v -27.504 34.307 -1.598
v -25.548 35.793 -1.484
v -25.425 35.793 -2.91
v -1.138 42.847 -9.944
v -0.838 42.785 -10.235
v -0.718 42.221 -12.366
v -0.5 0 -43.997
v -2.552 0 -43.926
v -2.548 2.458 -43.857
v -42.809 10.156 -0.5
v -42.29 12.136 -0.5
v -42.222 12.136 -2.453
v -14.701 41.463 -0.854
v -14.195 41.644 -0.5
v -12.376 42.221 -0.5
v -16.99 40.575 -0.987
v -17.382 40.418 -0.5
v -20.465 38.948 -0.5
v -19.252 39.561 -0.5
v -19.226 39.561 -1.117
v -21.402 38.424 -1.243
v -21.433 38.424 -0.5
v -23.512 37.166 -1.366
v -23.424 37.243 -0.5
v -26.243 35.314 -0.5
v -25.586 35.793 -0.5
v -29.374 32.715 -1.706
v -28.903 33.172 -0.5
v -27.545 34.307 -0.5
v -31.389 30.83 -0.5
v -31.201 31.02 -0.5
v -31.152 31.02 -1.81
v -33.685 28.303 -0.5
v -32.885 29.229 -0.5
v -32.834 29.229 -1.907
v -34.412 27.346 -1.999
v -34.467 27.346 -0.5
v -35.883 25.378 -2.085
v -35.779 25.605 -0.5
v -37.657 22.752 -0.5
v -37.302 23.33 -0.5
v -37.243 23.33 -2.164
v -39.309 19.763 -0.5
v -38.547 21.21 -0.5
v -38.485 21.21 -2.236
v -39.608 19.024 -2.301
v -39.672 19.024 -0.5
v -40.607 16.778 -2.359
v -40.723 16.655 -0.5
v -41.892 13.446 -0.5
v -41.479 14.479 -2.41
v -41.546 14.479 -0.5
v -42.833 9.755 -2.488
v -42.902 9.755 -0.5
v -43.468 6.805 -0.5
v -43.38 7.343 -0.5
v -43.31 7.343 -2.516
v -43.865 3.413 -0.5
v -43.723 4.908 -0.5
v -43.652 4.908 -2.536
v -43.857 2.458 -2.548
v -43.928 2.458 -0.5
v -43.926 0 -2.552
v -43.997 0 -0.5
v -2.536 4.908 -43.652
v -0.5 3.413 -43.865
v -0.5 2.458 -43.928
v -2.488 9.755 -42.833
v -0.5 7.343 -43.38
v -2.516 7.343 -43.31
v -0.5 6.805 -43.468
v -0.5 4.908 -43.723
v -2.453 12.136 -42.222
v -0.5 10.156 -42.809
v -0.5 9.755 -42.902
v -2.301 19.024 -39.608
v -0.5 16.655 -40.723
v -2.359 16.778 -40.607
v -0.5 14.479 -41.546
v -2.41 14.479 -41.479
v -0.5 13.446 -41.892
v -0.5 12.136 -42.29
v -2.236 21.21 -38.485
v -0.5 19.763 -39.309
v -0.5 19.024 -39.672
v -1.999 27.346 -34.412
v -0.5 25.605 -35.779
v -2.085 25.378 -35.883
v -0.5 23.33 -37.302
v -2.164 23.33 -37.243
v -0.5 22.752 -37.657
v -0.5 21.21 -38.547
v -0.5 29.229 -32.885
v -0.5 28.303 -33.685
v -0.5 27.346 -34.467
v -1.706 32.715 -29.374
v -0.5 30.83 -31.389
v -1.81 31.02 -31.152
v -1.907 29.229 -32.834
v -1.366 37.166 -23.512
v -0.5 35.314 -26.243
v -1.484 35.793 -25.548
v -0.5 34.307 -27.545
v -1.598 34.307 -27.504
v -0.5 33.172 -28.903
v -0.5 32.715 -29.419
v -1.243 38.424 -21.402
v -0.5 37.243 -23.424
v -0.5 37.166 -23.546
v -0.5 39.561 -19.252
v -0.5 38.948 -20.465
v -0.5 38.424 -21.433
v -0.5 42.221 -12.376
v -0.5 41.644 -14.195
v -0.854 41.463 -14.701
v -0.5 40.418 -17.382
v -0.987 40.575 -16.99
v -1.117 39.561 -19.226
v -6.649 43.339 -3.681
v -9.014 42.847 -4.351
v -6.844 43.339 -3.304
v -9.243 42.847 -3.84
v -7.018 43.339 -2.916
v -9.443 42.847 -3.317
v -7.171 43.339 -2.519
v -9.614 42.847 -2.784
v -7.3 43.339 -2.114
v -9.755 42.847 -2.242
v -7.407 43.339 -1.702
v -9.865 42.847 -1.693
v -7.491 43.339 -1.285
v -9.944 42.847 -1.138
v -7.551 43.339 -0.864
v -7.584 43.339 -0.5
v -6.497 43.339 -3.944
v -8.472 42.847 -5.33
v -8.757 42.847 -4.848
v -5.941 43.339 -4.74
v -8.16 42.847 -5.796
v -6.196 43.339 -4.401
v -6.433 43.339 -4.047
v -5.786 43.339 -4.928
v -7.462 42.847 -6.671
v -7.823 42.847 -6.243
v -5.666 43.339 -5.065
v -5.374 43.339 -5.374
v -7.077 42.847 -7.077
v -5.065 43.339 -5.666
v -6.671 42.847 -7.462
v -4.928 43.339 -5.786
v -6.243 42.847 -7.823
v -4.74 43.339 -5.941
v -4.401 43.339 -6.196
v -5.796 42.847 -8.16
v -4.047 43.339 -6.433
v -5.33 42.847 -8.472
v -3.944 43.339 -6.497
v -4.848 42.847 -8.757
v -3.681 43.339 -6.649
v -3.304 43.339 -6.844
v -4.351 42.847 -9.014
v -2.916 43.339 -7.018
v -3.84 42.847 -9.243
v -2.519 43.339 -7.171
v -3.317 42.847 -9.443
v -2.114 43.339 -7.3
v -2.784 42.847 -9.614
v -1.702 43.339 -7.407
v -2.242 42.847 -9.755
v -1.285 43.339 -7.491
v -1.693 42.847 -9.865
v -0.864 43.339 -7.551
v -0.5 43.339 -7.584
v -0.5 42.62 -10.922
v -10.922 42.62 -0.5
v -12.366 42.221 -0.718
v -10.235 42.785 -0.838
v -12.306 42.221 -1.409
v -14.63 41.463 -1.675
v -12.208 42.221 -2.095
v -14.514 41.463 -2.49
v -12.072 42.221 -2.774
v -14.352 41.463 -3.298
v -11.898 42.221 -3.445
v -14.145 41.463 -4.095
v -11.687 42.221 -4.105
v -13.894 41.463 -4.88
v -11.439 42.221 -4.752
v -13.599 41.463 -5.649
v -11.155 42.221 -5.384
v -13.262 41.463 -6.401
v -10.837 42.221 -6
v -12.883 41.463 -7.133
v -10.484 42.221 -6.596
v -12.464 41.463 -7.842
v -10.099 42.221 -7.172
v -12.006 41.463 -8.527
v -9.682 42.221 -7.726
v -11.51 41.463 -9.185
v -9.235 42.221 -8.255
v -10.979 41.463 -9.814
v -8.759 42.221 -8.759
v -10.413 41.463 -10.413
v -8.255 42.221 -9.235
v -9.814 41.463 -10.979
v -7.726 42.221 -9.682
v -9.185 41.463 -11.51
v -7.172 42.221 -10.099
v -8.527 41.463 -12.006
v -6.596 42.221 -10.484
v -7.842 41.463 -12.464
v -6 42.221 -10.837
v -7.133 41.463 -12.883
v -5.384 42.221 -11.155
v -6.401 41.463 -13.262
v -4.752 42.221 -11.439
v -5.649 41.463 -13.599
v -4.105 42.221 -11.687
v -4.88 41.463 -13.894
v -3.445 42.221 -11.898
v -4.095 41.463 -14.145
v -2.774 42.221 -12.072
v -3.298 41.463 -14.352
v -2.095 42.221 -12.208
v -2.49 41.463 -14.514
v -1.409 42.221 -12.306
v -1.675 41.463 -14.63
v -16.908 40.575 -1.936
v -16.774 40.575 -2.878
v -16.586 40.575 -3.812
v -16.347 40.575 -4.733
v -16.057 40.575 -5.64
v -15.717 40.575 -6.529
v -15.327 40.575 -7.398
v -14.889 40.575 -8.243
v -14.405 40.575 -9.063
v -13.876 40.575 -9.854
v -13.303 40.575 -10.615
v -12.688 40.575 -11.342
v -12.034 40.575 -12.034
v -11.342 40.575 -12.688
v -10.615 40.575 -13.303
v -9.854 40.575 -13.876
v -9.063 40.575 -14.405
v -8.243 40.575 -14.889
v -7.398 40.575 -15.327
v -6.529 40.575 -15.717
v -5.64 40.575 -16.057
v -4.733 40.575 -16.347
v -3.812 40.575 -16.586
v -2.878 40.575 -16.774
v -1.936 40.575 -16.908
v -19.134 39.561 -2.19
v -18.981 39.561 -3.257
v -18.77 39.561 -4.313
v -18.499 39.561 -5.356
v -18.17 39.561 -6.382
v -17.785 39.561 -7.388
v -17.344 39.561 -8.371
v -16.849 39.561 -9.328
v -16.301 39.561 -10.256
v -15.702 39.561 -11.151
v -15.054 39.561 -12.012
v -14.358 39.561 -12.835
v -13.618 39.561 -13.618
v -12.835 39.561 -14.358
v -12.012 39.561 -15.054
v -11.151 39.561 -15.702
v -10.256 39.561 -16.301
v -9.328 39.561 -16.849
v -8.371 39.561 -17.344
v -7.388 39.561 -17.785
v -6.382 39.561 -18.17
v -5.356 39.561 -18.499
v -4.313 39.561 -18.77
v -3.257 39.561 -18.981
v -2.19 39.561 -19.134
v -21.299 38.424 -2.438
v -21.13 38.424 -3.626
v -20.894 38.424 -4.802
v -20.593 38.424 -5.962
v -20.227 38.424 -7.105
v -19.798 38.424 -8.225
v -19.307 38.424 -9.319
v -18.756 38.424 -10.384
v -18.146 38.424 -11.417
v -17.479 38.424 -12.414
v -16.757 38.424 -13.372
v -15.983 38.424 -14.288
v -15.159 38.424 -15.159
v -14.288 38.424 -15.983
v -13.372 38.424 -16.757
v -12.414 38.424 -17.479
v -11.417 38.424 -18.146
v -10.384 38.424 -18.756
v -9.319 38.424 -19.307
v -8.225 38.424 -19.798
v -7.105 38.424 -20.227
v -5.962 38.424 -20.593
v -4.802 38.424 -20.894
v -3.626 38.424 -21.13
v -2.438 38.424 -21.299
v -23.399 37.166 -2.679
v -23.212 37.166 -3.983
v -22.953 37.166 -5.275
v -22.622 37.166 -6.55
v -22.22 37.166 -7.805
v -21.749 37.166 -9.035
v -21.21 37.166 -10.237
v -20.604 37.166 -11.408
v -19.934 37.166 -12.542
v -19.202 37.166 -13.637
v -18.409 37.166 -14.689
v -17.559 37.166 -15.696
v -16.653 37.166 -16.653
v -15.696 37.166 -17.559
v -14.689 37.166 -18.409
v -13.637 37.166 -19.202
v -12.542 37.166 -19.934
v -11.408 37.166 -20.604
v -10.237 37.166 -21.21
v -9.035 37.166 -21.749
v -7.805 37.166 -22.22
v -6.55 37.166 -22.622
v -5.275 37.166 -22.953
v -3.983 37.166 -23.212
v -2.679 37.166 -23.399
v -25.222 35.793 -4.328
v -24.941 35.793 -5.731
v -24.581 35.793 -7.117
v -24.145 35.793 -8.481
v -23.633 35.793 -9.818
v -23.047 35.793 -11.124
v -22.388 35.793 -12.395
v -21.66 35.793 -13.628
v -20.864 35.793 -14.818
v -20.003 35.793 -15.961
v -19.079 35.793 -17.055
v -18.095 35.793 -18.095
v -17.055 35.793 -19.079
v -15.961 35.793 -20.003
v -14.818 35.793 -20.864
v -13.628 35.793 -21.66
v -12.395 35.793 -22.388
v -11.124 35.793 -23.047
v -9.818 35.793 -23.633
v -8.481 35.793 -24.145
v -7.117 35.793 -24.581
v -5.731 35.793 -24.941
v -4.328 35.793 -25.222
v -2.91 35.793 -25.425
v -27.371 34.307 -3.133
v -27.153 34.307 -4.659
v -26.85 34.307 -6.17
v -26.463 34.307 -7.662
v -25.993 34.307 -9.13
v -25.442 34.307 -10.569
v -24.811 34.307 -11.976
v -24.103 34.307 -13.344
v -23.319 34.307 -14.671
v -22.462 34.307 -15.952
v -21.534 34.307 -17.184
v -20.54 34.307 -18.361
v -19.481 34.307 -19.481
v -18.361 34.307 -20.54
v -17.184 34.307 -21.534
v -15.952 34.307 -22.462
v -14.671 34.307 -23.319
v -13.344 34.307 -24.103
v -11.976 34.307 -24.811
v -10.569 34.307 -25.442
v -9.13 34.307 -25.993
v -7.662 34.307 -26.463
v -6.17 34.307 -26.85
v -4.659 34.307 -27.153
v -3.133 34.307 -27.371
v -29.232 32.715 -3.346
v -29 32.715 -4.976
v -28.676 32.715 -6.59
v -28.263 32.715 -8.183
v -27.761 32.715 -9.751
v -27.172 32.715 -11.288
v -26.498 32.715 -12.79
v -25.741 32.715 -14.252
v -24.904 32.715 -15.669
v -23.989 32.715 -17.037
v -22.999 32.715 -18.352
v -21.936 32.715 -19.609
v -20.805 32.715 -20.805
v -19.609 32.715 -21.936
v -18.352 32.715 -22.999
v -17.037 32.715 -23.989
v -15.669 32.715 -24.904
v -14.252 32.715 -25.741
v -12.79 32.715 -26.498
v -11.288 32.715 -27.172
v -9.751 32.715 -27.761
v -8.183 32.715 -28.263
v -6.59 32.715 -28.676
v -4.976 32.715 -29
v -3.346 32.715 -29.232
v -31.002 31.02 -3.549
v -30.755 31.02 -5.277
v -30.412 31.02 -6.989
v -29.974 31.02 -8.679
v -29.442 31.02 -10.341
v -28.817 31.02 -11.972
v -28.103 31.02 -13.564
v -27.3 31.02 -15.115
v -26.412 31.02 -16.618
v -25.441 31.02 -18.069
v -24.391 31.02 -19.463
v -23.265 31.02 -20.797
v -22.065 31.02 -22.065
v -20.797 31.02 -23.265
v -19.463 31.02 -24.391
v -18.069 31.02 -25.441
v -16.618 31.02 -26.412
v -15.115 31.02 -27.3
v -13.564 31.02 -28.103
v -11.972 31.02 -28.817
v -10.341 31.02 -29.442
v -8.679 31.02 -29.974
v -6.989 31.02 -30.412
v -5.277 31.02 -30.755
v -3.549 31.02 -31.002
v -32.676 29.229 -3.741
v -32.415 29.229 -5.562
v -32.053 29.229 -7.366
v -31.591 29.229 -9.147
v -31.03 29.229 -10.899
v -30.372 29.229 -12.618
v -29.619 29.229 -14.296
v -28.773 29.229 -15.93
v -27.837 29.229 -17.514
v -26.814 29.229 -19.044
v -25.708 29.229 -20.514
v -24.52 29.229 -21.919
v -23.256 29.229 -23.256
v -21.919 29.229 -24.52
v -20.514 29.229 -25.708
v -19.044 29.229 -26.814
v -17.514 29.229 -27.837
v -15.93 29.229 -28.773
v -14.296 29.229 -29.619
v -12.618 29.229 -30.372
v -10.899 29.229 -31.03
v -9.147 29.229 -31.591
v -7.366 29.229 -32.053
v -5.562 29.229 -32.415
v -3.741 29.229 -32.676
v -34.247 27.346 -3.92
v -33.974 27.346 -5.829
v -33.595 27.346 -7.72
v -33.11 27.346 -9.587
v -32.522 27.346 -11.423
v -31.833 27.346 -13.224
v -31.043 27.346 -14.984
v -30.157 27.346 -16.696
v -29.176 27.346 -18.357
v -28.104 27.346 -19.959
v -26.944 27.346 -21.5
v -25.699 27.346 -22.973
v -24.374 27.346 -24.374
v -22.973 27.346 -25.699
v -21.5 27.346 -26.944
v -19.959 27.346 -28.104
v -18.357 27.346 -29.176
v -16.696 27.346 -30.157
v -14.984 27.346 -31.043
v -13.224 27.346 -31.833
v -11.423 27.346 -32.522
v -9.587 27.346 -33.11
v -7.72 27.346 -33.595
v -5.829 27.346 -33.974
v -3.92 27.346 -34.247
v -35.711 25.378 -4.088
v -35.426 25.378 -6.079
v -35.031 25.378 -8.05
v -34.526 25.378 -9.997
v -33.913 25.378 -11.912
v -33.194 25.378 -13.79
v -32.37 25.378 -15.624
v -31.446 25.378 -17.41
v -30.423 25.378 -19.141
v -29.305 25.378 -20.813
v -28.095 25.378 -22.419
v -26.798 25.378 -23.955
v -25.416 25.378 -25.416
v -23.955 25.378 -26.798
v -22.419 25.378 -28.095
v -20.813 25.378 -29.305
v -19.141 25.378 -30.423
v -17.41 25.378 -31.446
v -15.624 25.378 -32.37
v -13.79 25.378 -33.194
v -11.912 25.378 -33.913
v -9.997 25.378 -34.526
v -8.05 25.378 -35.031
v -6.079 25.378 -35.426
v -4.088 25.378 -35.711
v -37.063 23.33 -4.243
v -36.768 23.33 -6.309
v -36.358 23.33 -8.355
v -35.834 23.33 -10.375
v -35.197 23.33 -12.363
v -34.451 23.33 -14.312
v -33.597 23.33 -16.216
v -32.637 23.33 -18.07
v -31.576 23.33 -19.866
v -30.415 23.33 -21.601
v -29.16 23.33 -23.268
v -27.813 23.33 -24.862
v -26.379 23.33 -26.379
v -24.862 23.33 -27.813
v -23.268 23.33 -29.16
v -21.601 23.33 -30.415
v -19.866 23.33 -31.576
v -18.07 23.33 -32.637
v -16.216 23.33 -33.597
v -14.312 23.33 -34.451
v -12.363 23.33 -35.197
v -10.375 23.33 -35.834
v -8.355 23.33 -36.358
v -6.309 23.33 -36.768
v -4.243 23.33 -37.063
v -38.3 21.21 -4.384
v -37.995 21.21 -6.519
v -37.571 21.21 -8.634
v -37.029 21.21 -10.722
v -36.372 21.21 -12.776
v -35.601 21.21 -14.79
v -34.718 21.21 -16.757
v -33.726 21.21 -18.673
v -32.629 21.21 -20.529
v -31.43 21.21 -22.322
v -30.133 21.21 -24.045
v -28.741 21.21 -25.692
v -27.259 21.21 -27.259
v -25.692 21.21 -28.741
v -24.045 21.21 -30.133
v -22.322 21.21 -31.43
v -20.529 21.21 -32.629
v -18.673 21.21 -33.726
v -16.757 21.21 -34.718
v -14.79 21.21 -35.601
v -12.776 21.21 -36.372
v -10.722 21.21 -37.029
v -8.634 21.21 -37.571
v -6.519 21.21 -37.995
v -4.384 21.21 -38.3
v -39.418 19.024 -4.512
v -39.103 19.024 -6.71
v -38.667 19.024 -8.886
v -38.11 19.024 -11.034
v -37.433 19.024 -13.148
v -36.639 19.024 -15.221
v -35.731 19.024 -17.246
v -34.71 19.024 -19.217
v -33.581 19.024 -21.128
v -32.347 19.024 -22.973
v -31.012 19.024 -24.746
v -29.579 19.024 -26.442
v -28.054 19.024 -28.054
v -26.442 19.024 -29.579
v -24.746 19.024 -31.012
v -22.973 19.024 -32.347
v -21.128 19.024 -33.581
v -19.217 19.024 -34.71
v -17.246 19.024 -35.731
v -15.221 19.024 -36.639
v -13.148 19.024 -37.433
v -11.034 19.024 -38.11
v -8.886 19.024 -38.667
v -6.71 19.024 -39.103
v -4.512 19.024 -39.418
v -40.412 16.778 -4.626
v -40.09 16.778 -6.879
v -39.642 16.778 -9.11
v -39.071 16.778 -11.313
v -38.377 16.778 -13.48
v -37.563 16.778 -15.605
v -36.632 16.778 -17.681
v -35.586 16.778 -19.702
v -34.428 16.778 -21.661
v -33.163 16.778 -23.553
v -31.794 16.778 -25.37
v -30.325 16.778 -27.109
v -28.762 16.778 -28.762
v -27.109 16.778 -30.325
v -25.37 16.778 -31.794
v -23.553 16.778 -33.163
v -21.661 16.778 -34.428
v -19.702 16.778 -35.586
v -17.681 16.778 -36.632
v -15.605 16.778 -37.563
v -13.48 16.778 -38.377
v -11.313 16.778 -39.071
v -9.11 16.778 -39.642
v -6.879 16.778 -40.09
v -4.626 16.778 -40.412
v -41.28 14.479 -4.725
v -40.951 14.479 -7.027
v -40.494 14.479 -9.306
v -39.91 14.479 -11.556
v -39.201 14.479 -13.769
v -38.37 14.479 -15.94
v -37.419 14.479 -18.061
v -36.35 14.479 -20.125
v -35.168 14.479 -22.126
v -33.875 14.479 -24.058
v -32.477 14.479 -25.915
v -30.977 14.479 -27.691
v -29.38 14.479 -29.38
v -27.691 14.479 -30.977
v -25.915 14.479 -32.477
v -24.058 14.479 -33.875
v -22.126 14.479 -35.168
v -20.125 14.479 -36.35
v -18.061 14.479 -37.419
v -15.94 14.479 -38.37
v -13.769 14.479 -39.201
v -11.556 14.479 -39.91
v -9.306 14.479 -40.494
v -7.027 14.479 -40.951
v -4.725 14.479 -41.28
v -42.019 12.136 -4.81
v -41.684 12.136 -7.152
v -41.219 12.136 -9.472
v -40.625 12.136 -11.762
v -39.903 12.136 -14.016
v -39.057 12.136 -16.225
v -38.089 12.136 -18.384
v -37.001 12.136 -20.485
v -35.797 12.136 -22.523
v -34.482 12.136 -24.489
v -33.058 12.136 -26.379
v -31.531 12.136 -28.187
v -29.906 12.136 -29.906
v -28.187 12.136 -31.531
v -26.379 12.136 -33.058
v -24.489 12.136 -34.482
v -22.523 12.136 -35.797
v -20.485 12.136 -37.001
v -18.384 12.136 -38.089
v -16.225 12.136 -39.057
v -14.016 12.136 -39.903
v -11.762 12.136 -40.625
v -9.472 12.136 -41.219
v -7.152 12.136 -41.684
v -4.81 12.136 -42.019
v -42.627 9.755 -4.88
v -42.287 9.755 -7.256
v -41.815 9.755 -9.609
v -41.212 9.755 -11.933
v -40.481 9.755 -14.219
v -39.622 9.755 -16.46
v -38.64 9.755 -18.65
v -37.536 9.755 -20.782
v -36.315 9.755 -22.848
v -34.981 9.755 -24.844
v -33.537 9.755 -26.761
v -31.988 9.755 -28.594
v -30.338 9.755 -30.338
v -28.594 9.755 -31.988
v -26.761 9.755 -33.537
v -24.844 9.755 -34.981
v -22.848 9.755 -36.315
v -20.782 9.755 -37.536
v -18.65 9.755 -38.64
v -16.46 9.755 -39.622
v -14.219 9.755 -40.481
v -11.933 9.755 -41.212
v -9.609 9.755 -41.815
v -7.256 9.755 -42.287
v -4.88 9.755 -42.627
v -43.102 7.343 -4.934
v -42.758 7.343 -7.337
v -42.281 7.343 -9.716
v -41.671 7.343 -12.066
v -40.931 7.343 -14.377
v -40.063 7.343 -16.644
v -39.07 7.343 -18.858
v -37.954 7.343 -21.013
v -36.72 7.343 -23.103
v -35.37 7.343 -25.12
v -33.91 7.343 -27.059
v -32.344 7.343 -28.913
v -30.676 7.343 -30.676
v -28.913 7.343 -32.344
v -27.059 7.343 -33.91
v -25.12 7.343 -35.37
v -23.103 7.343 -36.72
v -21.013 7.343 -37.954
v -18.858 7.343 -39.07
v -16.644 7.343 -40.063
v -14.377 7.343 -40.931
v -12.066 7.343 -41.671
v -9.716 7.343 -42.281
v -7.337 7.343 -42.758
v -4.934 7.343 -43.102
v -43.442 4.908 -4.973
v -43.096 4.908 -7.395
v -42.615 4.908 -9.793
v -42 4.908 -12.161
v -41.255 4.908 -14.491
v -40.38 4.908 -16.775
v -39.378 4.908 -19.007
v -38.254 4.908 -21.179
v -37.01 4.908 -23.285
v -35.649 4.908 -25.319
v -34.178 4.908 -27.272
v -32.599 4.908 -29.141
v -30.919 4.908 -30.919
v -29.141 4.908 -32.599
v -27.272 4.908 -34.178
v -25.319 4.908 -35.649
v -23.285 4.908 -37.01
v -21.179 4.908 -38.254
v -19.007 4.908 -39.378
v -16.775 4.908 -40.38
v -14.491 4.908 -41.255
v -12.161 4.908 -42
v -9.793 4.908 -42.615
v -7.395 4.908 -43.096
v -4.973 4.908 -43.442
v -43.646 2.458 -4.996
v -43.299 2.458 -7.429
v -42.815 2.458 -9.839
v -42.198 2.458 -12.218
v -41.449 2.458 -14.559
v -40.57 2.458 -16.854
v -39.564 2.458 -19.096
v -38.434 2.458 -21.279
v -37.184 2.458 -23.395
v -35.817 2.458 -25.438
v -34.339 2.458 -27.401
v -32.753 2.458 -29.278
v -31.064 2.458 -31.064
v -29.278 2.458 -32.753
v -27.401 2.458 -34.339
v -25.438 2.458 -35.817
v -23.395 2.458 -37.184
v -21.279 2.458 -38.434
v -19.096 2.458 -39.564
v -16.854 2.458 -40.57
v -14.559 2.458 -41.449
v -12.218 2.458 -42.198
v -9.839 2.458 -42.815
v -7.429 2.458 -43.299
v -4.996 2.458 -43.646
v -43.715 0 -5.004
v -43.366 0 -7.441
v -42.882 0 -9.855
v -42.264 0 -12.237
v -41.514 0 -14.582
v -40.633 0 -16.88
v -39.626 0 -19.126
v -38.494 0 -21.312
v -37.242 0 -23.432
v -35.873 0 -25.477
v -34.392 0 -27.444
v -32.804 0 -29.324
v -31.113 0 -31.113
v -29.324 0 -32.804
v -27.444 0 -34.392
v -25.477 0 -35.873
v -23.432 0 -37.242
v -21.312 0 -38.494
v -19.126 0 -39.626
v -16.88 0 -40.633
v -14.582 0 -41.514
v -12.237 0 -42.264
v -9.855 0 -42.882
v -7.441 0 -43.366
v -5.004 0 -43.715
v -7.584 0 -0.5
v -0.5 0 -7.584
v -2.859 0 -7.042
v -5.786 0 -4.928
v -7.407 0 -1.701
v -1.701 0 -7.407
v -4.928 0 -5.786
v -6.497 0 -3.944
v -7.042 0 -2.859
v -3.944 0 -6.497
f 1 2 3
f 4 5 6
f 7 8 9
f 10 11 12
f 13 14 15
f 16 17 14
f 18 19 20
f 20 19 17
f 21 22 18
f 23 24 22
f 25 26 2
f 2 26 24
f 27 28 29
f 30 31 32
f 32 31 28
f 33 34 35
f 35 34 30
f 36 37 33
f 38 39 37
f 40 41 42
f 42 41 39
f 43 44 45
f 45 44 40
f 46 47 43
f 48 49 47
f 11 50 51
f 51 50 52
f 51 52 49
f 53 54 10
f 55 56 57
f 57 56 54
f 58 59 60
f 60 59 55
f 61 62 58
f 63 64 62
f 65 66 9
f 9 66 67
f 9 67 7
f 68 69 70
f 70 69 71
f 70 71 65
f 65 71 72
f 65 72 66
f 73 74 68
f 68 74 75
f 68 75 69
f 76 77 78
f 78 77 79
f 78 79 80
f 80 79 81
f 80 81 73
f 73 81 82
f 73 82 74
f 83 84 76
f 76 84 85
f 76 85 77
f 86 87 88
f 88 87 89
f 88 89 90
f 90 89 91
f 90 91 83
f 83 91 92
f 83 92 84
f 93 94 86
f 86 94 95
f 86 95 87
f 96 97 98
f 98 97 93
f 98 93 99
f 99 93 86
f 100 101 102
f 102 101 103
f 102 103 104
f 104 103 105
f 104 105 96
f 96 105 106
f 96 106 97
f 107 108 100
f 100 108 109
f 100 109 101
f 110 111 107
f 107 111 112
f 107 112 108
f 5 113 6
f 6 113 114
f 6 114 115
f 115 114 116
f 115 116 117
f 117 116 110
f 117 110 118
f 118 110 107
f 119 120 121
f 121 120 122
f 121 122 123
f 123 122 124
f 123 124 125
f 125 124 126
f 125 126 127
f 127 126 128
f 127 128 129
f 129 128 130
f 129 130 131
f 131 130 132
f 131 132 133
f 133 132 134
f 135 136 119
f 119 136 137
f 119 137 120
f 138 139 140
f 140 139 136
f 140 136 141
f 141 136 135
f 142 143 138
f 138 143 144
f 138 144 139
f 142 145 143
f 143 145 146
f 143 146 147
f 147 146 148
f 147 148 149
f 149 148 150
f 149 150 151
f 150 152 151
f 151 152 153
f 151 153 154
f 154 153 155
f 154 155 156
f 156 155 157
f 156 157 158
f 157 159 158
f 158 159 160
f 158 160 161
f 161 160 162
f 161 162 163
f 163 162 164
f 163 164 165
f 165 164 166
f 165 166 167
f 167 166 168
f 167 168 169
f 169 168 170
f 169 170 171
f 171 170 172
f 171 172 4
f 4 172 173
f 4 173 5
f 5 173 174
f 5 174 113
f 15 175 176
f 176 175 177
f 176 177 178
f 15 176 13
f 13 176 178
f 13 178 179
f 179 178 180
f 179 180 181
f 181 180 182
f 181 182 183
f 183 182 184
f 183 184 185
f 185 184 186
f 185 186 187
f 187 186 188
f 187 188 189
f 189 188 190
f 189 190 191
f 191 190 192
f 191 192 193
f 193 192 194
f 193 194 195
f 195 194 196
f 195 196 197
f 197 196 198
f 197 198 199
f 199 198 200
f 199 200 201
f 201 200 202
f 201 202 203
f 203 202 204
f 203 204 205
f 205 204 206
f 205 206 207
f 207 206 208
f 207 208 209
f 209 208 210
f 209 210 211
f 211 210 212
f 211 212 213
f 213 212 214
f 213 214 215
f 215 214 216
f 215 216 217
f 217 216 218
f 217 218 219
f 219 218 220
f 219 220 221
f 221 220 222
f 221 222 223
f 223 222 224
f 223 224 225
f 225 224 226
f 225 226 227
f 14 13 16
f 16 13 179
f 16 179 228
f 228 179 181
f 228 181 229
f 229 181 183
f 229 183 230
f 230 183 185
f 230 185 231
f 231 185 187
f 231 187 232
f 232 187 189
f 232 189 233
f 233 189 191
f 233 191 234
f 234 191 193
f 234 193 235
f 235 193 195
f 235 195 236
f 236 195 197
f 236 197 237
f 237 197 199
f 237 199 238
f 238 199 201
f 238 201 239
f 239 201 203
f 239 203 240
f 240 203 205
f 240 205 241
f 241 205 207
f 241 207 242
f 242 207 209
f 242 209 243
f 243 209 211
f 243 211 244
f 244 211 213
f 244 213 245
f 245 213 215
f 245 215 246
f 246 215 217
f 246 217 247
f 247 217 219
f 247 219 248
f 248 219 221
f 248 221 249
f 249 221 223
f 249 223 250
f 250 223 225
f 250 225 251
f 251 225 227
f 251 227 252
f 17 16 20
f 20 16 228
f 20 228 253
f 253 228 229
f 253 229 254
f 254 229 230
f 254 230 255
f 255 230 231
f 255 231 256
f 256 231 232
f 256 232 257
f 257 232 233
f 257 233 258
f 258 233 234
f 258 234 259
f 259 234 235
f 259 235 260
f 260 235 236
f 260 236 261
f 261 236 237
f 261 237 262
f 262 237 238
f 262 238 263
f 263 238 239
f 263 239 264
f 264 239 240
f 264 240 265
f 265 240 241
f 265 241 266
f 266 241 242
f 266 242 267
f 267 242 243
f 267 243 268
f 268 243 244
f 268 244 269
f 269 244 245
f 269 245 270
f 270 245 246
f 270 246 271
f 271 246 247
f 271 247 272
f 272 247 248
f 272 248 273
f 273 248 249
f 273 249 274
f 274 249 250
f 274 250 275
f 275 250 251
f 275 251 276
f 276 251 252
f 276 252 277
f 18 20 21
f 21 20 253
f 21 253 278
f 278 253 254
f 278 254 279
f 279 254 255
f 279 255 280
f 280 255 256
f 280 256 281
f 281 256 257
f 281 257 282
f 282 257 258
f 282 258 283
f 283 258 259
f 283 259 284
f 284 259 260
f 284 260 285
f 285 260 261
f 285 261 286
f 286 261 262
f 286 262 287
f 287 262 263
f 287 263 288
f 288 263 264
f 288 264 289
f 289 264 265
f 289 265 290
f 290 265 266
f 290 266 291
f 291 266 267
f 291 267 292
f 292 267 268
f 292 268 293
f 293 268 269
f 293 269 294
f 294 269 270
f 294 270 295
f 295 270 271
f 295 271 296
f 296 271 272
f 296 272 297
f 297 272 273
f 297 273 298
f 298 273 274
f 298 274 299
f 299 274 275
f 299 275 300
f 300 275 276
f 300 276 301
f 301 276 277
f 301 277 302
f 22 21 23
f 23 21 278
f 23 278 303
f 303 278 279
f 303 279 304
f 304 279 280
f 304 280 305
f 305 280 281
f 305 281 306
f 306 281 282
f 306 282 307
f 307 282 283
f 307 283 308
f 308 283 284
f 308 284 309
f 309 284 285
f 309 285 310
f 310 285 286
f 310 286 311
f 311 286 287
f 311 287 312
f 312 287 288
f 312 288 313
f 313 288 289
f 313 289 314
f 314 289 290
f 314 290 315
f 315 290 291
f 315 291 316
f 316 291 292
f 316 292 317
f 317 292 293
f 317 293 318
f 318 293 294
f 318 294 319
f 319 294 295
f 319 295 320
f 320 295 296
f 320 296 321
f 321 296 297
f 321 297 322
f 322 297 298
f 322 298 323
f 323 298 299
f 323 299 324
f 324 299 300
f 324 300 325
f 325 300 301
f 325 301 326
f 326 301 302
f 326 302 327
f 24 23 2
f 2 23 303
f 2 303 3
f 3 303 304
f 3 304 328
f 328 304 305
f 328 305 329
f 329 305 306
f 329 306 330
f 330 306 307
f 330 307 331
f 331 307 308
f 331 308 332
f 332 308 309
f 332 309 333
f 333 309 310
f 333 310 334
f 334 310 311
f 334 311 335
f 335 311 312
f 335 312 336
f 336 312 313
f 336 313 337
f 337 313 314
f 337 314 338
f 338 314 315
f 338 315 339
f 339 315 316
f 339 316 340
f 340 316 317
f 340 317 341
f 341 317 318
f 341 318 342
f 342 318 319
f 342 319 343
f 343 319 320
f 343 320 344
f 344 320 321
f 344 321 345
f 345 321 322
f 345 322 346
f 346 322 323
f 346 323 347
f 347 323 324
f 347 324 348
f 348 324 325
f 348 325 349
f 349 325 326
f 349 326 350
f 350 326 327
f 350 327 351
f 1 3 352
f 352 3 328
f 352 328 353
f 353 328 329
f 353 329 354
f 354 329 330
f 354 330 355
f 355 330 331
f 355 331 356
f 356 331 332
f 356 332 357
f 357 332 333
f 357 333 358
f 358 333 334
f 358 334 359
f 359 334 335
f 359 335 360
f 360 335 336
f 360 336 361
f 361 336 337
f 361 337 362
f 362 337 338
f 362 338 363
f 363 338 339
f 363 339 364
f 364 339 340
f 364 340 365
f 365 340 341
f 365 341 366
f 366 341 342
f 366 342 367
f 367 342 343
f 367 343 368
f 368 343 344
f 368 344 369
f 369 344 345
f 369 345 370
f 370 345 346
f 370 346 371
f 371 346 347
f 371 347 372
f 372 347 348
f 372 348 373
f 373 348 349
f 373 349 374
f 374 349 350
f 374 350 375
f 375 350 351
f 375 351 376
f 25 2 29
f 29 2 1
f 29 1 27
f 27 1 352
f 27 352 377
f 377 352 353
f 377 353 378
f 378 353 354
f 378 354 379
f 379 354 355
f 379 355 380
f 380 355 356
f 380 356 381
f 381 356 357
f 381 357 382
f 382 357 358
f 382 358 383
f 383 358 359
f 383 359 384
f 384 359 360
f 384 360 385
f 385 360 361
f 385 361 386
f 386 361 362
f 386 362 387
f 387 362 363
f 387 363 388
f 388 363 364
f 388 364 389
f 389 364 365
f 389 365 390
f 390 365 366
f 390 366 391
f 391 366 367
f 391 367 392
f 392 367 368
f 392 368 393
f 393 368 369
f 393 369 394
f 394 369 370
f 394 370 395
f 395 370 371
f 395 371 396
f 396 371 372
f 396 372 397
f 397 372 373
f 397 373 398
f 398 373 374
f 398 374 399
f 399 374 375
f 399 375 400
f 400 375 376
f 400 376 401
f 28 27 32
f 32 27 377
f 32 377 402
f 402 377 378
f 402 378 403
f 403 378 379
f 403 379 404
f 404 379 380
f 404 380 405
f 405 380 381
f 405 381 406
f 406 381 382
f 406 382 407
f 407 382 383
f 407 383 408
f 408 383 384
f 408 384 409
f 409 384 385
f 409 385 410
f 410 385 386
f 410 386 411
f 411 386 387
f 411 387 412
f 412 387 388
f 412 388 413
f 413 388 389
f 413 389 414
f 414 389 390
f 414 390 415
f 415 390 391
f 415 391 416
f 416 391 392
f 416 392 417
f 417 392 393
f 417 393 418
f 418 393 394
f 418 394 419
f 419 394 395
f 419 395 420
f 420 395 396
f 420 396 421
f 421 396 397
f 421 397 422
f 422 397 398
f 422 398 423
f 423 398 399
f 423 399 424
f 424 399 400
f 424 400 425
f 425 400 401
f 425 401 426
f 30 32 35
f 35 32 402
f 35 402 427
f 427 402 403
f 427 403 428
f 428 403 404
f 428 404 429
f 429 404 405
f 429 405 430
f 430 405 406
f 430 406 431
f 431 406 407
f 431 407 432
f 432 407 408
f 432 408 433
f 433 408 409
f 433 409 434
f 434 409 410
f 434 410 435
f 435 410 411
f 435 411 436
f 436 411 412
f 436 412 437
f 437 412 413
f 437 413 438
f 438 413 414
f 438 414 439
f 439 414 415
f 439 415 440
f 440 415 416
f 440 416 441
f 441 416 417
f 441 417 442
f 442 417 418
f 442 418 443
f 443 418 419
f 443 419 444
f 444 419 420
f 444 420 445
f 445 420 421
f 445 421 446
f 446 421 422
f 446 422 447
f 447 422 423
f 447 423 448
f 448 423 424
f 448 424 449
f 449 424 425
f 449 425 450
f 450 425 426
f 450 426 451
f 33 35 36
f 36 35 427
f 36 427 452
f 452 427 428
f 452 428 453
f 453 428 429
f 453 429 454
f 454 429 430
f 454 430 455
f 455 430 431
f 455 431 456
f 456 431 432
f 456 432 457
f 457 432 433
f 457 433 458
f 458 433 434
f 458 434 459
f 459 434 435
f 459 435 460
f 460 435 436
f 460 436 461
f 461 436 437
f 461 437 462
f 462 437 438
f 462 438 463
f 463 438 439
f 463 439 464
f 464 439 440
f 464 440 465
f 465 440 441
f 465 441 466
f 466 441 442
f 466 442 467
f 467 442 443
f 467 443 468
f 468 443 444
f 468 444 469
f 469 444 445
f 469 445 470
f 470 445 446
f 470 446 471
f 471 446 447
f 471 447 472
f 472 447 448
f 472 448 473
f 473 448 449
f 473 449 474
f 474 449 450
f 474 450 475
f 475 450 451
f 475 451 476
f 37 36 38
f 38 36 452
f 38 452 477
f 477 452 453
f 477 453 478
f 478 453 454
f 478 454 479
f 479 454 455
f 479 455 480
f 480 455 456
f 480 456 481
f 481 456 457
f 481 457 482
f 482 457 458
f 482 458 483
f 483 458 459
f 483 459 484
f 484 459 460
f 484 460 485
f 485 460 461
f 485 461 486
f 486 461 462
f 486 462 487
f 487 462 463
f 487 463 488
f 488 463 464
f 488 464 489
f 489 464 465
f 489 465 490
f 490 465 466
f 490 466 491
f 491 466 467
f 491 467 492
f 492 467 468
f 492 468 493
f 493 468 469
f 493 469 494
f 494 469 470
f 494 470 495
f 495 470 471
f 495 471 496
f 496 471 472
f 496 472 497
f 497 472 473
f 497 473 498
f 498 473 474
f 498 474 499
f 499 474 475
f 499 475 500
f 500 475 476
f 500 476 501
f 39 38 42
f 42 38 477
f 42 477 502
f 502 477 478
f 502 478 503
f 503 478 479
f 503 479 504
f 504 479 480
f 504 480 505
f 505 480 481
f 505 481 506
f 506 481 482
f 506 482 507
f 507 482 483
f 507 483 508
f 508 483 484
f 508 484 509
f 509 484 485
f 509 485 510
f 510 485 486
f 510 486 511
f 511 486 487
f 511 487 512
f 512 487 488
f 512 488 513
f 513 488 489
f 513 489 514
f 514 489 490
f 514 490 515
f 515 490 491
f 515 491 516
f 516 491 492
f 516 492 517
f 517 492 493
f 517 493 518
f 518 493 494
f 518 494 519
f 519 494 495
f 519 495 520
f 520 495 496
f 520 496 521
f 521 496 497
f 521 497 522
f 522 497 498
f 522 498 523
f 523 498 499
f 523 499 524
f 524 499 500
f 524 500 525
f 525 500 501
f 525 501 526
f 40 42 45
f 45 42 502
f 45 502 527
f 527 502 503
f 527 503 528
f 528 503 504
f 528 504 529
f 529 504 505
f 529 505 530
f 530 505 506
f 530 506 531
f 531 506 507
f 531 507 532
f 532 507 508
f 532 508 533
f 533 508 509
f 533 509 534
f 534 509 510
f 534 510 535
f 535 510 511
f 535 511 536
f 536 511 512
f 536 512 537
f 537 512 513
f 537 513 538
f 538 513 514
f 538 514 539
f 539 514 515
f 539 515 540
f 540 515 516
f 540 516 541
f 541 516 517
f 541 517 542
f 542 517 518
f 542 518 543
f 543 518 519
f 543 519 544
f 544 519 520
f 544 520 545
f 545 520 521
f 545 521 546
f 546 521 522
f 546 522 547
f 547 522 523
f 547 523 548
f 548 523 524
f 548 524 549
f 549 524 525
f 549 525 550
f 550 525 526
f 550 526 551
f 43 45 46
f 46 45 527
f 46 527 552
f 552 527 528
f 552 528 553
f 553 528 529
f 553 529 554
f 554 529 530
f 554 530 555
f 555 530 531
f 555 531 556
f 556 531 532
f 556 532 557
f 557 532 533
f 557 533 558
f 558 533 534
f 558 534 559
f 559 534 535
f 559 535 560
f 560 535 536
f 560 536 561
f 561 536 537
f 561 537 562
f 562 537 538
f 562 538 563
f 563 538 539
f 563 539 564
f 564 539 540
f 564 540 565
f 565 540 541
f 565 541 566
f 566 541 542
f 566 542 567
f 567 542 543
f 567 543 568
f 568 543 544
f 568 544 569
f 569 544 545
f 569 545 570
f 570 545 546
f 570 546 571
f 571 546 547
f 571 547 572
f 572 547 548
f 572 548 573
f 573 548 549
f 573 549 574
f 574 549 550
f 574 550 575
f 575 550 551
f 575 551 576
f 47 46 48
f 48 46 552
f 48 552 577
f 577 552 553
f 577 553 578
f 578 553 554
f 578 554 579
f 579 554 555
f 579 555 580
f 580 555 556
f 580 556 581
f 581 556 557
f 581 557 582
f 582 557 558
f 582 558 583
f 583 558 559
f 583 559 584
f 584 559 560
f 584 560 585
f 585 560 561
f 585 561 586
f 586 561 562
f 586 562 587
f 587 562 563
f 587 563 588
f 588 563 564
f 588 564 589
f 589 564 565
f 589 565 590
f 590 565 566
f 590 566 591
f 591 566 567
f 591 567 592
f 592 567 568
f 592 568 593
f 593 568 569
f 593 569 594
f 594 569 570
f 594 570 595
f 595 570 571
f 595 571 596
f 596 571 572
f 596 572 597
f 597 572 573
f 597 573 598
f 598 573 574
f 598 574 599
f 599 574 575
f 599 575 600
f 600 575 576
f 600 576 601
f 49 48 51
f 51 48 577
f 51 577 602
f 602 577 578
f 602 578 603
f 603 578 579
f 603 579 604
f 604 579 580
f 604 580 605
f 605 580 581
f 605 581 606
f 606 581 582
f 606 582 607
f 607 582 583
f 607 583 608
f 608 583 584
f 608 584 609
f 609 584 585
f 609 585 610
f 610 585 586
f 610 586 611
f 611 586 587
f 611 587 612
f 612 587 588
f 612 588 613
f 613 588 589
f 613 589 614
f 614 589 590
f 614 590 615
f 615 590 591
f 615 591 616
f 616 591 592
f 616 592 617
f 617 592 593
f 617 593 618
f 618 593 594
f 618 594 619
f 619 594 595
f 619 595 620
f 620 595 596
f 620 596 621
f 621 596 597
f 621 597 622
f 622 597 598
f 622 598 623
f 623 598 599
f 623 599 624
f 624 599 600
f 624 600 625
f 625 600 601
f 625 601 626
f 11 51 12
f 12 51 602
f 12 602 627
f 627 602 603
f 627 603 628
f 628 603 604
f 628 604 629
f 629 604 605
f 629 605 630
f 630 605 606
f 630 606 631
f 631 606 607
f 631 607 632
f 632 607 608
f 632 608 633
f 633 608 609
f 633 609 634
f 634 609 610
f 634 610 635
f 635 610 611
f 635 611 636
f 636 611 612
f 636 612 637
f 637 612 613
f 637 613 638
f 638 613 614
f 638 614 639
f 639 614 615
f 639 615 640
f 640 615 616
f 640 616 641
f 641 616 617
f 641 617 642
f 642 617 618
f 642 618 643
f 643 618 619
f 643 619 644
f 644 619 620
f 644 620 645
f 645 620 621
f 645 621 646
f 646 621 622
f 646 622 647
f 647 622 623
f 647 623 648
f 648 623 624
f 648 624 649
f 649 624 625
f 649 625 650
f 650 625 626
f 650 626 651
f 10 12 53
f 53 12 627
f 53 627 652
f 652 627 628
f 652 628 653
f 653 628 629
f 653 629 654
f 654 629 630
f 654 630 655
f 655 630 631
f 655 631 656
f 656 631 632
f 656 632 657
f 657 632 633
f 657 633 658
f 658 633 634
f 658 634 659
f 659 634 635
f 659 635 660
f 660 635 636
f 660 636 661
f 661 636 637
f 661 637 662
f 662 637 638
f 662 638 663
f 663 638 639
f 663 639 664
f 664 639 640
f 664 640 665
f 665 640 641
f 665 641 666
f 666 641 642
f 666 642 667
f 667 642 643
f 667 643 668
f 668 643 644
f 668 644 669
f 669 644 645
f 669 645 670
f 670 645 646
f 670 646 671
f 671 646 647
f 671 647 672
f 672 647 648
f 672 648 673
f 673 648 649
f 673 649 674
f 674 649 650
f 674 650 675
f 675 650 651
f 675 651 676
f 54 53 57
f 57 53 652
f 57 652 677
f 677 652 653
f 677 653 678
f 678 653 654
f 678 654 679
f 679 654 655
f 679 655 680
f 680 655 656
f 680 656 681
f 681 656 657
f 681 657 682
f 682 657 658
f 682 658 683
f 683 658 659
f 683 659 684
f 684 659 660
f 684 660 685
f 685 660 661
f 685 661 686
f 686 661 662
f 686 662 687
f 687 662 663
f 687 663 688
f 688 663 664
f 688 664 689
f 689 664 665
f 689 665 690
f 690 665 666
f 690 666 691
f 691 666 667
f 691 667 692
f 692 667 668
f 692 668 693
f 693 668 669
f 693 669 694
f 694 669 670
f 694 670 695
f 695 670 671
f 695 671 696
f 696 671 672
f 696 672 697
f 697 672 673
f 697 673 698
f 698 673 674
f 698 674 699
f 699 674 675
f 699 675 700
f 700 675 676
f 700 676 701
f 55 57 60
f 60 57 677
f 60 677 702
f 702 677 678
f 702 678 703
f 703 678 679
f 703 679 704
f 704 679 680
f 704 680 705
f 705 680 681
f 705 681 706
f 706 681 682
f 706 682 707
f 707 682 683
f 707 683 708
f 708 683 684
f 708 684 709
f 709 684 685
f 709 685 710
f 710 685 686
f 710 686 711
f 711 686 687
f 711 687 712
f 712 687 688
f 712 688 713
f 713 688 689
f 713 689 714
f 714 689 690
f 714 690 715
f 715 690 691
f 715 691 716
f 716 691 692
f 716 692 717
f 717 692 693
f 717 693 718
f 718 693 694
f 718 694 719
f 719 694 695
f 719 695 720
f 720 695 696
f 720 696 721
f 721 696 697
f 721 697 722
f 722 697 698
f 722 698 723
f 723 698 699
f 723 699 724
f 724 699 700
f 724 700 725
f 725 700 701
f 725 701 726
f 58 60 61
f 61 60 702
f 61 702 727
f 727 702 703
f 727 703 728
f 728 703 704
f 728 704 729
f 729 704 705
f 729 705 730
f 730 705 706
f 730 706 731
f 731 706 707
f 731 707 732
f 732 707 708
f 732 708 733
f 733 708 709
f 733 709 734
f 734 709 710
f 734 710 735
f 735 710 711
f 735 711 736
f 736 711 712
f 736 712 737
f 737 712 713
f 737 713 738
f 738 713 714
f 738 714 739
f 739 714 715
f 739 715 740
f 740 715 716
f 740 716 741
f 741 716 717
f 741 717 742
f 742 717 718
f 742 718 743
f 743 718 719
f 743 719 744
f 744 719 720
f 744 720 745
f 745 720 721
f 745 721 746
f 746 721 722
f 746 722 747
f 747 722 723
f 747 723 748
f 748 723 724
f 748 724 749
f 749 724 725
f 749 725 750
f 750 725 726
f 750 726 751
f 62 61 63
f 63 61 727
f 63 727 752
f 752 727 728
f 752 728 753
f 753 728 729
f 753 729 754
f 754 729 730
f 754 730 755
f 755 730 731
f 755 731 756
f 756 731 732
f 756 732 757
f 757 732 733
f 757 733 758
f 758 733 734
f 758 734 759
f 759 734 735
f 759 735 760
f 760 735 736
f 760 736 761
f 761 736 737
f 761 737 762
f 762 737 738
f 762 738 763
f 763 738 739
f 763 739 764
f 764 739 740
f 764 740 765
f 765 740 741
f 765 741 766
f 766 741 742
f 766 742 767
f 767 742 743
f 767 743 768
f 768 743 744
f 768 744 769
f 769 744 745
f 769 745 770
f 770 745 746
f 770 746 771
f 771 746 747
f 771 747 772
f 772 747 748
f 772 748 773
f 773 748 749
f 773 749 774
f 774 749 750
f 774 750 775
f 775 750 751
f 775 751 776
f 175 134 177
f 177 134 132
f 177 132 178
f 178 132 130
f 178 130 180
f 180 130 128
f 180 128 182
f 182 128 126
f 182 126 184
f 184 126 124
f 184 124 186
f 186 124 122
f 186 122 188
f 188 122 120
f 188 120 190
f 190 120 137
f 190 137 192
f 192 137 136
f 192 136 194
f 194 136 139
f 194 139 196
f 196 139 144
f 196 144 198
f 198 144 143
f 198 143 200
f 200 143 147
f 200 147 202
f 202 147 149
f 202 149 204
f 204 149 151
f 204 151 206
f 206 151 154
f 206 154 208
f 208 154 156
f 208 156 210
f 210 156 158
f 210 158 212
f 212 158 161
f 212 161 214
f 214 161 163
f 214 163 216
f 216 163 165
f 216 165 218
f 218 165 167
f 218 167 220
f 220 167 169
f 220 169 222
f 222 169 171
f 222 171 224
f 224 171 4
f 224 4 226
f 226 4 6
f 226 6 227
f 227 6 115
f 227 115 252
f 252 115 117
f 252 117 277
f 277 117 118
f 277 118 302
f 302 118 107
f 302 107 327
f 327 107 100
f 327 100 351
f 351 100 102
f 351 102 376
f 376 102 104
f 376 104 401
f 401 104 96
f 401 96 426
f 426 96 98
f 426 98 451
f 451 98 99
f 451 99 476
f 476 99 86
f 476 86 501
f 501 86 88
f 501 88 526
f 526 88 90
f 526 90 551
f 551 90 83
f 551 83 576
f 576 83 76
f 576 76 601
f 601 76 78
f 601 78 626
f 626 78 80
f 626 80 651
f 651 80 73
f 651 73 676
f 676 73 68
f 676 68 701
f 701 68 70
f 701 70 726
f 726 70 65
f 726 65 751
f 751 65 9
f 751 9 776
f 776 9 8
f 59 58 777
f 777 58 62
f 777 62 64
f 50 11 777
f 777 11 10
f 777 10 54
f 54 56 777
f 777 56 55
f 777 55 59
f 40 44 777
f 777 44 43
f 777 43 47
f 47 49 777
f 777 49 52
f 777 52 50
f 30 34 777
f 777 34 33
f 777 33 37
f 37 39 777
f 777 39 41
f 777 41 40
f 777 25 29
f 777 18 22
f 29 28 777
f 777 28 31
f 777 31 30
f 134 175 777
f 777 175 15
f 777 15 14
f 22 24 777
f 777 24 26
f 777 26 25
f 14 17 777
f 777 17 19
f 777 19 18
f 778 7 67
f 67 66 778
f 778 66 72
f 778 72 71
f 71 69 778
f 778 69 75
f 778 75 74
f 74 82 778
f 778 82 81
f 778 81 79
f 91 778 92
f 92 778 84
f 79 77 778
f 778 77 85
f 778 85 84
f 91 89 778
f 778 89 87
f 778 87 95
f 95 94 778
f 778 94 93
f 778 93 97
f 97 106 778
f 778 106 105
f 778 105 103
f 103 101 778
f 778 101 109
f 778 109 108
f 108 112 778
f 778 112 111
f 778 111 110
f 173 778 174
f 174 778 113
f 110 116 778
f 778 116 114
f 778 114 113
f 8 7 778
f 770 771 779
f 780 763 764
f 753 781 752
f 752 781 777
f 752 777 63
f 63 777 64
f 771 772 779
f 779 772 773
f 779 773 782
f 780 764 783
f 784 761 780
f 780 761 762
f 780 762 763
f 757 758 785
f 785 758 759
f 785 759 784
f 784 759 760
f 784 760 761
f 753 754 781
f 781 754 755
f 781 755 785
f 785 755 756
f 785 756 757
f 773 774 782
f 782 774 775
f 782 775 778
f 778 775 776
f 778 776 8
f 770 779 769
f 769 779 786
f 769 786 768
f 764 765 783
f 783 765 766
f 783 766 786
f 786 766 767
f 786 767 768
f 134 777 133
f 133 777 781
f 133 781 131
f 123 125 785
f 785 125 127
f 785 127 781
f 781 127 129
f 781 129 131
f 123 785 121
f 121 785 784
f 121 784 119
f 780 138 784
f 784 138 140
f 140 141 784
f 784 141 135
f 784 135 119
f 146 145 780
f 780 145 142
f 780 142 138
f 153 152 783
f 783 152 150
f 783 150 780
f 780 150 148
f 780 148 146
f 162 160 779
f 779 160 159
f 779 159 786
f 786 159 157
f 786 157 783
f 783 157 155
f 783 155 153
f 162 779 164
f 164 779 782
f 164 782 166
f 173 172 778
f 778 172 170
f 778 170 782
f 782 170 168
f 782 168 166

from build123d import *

# Parameters (mm, degrees)
CUT_EXTRUDE1_DEPTH      = 77.210235533
CUT_EXTRUDE1_DEPTH_BACK = 77.210235533
SKETCH3_W               = 43.997158999
SKETCH3_H               = 43.997158999
CUT_EXTRUDE2_DEPTH      = 76.916090791
SKETCH6_R               = 7.6
CUT_EXTRUDE3_DEPTH      = 77.203674452


with BuildPart() as part:
    # Sketch1 → Revolve1 (revolve)
    with BuildSketch(Plane.XY):
        with BuildLine():
            Line((0, 44), (0, -44))
            ThreePointArc((0, -44), (-44, 0), (0, 44))
        make_face()
    revolve(axis=Axis((0, 44, 0), (0, -1, 0)))

    # Sketch2 → Cut-Extrude1 (cut, two sides: drawn at the far end of the back side and taken through both)
    with BuildSketch(Plane(origin=(0, 0, 0), x_dir=(1, 0, 0), z_dir=(0, 1, 0)).offset(-CUT_EXTRUDE1_DEPTH_BACK)):
        with BuildLine():
            Line((-0.5, 43.997158999), (-0.5, 0.5))
            Line((-0.5, 0.5), (-43.997158999, 0.5))
            ThreePointArc((-43.997158999, 0.5), (31.112698372, -31.112698372), (-0.5, 43.997158999))
        make_face()
    extrude(amount=CUT_EXTRUDE1_DEPTH + CUT_EXTRUDE1_DEPTH_BACK, mode=Mode.SUBTRACT)

    # Sketch3 → Cut-Extrude2 (cut, through all)
    with BuildSketch(Plane(origin=(-0.5, 0, 0), x_dir=(0, 0, -1), z_dir=(1, 0, 0))):
        with Locations((21.998579499, -21.998579499)):
            Rectangle(SKETCH3_W, SKETCH3_H)
    extrude(amount=-CUT_EXTRUDE2_DEPTH, mode=Mode.SUBTRACT)

    # Sketch6 → Cut-Extrude3 (cut, through all)
    with BuildSketch(Plane.XZ):
        Circle(SKETCH6_R)
    extrude(amount=-CUT_EXTRUDE3_DEPTH, mode=Mode.SUBTRACT)


solid = part.part
